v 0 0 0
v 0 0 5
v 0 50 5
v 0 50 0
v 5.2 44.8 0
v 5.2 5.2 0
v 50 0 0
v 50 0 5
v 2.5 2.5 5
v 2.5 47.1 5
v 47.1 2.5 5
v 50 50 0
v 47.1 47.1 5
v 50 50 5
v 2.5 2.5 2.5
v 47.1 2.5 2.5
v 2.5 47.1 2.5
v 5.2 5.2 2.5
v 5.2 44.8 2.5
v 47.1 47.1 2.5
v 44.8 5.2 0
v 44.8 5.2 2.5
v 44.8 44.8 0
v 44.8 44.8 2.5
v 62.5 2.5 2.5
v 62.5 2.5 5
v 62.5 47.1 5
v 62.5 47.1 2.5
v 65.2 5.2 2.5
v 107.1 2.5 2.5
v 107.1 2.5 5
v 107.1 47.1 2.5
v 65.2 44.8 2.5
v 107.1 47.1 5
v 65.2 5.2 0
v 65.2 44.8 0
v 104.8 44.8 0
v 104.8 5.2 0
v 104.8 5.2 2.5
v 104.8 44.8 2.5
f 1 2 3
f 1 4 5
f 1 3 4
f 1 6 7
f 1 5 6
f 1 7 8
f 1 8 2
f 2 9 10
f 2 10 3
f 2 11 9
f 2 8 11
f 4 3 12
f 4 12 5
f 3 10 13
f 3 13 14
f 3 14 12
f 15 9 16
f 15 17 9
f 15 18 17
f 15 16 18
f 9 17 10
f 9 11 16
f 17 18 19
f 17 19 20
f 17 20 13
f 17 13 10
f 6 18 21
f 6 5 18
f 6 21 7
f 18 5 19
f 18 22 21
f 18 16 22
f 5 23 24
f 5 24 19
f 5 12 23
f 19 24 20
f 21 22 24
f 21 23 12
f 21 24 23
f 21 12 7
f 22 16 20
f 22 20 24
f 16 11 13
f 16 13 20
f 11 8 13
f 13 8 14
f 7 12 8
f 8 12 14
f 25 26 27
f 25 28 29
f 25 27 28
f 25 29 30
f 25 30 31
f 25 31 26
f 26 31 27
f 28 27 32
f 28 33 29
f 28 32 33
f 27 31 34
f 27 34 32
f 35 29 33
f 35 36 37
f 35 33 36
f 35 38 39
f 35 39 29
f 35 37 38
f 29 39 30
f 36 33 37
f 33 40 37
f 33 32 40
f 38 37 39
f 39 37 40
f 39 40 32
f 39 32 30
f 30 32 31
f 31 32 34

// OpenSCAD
// stand for mayo and katsup
// to organize the fridge
// 01.10.2025 Sebastian Weigl
 
// set the fregment sizes
$fn = $preview ? 48 : 64;

// vars
border=2.5;

fir_box_width=50;
fir_box_depth=50;
fir_box_height=5;

sec_box_width=44.6;
sec_box_depth=44.6;
sec_box_height=2.5;

thi_box_width=39.6;
thi_box_depth=39.6;
thi_box_height=5;

// object
difference() {
cube([fir_box_width,fir_box_depth,fir_box_height],false);
translate([border,border,border])
#cube([sec_box_width,sec_box_depth,sec_box_height],false);
translate([25,25,2.5])
#cube([thi_box_width,thi_box_depth,thi_box_height],true);
}

translate([60,0,0])
union(){
translate([border,border,border])
#cube([sec_box_width,sec_box_depth,sec_box_height],false);
translate([25,25,2.5])
#cube([thi_box_width,thi_box_depth,thi_box_height],true);
}

echo (sec_box_width);
echo (thi_box_width);
